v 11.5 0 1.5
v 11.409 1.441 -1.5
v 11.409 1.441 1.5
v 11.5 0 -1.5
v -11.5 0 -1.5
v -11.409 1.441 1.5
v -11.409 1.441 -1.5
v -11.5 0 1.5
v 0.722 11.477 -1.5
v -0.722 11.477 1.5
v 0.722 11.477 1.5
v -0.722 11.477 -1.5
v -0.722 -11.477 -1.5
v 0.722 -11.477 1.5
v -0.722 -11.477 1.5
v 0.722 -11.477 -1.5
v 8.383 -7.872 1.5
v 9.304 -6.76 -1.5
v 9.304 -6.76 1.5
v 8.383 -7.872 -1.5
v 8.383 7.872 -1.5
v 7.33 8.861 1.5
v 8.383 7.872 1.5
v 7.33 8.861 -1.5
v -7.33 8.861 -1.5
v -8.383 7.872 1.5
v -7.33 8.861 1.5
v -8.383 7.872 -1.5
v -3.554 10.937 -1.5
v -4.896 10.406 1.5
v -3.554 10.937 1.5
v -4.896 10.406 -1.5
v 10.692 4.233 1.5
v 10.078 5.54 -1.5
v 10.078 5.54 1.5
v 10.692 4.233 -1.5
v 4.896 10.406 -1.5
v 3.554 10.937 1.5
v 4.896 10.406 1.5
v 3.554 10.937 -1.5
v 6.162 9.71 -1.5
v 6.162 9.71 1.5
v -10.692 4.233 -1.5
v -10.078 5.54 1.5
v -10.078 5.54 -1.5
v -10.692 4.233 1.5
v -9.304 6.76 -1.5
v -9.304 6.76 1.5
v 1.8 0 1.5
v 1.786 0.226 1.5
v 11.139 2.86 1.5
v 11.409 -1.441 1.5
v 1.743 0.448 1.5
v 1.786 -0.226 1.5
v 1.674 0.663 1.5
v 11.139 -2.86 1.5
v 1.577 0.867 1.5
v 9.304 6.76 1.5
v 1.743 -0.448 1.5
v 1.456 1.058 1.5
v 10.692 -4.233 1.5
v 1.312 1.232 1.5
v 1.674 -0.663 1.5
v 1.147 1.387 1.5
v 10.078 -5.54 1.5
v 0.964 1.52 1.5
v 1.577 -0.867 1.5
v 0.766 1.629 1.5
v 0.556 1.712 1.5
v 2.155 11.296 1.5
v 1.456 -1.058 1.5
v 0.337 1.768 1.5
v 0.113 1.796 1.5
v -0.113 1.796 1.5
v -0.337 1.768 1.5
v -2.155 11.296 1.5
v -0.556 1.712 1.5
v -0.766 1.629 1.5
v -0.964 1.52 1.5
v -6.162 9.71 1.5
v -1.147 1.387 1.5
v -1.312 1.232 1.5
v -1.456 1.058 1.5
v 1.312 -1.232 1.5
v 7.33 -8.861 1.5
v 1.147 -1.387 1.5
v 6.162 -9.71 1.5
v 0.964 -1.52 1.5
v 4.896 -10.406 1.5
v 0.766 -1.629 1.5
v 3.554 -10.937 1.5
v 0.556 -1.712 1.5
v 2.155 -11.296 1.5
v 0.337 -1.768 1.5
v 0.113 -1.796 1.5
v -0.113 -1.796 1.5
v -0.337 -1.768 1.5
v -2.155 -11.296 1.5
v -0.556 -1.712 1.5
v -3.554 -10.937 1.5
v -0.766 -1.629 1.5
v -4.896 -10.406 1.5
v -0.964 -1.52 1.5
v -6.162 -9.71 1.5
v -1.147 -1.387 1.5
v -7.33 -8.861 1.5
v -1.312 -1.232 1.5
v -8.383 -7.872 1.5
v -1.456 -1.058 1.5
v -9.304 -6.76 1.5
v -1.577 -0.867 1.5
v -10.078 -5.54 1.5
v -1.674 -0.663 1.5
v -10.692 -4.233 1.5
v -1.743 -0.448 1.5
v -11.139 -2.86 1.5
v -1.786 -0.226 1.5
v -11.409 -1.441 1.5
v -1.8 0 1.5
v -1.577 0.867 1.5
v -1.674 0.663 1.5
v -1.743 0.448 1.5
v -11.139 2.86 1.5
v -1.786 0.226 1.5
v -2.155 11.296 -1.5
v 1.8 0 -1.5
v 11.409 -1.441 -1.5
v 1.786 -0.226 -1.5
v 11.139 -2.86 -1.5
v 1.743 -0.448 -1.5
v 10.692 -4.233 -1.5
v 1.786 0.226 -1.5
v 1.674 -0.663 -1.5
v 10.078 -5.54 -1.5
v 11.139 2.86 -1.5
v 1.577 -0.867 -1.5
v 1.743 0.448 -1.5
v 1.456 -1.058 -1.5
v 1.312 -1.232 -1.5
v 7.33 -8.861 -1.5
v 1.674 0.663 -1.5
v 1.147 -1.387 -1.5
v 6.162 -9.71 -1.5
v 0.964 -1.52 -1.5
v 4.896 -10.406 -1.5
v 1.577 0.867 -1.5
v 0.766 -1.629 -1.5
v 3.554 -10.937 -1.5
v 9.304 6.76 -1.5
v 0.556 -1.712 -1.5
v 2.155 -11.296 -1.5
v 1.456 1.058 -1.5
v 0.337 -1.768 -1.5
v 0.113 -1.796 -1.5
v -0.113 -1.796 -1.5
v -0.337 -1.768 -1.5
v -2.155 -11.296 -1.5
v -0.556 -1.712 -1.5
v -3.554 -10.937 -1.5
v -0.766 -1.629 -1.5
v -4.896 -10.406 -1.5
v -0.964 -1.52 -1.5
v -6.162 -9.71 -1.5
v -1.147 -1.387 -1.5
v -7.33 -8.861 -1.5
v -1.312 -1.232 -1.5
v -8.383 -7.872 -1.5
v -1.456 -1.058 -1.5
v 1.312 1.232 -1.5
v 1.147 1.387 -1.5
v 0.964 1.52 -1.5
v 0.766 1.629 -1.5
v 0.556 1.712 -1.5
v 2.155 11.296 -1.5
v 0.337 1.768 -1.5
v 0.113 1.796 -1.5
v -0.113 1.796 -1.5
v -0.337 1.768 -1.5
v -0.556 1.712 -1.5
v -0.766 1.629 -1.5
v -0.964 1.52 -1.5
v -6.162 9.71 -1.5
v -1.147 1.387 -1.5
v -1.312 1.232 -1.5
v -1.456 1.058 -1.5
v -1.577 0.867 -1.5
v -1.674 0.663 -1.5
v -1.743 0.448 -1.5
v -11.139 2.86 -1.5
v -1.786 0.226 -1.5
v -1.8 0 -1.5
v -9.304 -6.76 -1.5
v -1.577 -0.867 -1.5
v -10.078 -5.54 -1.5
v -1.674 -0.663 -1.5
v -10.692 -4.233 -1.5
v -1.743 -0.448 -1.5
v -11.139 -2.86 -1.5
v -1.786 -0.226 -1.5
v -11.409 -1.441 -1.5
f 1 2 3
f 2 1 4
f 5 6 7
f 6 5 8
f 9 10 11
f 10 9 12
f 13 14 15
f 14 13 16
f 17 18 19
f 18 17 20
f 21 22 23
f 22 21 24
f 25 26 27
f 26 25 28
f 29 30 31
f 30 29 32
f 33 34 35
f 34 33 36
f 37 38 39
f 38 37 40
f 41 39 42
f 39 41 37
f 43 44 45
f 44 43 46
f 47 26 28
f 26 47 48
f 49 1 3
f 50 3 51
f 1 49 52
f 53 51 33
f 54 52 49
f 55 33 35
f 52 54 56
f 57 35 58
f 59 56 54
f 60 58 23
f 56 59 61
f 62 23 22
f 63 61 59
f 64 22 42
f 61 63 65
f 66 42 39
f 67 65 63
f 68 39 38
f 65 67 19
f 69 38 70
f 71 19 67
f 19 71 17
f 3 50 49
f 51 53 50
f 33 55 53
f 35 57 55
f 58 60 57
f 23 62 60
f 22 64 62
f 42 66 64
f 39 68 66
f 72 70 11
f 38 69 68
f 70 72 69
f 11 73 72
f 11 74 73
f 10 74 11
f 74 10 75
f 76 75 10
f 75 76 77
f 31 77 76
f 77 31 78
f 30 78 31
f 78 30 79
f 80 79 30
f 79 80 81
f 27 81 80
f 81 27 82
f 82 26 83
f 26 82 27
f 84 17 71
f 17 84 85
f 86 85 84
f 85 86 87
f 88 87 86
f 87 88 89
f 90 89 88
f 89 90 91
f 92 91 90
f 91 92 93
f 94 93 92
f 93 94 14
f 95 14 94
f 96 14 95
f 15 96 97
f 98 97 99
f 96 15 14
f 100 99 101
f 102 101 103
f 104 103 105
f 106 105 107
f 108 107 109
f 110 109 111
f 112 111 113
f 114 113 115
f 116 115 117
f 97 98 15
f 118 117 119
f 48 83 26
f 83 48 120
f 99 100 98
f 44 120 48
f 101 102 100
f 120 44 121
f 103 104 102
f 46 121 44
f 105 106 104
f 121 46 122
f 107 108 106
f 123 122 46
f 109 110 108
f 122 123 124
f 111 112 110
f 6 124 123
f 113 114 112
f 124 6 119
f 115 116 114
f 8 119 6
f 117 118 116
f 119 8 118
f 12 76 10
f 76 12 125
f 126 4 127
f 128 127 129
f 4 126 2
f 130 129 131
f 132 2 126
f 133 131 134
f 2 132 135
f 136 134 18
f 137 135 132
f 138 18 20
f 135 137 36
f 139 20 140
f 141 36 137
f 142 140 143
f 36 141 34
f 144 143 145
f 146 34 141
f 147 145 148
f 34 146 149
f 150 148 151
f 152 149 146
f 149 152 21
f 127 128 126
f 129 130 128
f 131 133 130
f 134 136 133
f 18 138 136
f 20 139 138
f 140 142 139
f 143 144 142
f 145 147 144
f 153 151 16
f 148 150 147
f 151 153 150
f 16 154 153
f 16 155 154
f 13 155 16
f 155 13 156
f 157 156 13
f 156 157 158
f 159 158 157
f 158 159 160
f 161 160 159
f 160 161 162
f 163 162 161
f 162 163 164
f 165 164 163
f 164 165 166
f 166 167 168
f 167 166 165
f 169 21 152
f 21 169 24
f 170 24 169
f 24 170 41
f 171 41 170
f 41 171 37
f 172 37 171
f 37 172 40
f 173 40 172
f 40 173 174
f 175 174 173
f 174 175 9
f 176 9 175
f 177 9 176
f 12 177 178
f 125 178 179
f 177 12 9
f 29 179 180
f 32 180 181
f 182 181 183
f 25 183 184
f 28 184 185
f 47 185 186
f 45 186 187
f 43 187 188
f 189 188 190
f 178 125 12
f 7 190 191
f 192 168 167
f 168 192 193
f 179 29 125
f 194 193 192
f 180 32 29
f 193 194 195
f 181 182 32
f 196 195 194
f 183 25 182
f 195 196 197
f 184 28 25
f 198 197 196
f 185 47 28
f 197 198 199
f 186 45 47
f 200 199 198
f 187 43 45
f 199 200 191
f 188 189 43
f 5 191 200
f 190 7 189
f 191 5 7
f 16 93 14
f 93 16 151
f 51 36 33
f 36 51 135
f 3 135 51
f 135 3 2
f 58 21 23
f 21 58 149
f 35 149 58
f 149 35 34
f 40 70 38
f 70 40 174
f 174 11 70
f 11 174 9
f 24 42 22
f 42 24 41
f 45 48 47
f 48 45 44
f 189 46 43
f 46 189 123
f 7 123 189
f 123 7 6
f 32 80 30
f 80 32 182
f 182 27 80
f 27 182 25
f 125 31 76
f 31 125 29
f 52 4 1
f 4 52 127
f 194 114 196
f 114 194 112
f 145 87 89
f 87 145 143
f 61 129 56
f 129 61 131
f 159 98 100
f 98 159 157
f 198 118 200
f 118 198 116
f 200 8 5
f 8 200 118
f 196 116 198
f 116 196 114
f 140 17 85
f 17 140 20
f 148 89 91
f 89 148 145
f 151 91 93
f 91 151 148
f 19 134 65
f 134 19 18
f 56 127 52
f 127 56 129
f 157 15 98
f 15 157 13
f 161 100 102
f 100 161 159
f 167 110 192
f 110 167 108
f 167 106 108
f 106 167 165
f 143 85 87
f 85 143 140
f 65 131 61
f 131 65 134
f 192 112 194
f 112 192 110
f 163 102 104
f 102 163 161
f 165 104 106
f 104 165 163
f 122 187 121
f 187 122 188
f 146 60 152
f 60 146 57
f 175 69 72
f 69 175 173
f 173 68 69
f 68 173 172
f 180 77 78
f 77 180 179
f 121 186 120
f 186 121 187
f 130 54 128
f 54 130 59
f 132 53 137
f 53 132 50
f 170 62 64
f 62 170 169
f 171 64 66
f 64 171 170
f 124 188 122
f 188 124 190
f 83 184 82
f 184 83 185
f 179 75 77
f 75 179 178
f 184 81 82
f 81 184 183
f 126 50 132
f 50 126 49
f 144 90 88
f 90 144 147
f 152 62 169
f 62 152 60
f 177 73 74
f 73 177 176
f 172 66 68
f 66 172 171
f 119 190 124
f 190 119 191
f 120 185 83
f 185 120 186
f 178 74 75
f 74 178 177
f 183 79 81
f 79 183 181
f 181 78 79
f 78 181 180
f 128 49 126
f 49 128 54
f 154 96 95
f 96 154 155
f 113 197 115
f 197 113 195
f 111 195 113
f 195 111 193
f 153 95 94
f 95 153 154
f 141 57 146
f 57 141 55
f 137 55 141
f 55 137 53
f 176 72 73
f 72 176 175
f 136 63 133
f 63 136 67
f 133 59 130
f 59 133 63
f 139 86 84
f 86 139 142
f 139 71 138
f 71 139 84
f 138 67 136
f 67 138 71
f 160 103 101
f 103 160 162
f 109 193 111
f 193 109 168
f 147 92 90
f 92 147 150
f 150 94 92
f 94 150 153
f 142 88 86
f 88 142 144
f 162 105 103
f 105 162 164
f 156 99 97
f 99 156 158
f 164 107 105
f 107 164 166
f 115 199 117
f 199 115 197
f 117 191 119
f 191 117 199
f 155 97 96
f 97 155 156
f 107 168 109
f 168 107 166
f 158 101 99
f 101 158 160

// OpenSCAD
$fn = 50;


difference() {
	union() {
		translate(v = [0, 0, -1.5000000000]) {
			cylinder(h = 3, r = 11.5000000000);
		}
	}
	union() {
		translate(v = [0, 0, -100.0000000000]) {
			cylinder(h = 200, r = 1.8000000000);
		}
	}
}
